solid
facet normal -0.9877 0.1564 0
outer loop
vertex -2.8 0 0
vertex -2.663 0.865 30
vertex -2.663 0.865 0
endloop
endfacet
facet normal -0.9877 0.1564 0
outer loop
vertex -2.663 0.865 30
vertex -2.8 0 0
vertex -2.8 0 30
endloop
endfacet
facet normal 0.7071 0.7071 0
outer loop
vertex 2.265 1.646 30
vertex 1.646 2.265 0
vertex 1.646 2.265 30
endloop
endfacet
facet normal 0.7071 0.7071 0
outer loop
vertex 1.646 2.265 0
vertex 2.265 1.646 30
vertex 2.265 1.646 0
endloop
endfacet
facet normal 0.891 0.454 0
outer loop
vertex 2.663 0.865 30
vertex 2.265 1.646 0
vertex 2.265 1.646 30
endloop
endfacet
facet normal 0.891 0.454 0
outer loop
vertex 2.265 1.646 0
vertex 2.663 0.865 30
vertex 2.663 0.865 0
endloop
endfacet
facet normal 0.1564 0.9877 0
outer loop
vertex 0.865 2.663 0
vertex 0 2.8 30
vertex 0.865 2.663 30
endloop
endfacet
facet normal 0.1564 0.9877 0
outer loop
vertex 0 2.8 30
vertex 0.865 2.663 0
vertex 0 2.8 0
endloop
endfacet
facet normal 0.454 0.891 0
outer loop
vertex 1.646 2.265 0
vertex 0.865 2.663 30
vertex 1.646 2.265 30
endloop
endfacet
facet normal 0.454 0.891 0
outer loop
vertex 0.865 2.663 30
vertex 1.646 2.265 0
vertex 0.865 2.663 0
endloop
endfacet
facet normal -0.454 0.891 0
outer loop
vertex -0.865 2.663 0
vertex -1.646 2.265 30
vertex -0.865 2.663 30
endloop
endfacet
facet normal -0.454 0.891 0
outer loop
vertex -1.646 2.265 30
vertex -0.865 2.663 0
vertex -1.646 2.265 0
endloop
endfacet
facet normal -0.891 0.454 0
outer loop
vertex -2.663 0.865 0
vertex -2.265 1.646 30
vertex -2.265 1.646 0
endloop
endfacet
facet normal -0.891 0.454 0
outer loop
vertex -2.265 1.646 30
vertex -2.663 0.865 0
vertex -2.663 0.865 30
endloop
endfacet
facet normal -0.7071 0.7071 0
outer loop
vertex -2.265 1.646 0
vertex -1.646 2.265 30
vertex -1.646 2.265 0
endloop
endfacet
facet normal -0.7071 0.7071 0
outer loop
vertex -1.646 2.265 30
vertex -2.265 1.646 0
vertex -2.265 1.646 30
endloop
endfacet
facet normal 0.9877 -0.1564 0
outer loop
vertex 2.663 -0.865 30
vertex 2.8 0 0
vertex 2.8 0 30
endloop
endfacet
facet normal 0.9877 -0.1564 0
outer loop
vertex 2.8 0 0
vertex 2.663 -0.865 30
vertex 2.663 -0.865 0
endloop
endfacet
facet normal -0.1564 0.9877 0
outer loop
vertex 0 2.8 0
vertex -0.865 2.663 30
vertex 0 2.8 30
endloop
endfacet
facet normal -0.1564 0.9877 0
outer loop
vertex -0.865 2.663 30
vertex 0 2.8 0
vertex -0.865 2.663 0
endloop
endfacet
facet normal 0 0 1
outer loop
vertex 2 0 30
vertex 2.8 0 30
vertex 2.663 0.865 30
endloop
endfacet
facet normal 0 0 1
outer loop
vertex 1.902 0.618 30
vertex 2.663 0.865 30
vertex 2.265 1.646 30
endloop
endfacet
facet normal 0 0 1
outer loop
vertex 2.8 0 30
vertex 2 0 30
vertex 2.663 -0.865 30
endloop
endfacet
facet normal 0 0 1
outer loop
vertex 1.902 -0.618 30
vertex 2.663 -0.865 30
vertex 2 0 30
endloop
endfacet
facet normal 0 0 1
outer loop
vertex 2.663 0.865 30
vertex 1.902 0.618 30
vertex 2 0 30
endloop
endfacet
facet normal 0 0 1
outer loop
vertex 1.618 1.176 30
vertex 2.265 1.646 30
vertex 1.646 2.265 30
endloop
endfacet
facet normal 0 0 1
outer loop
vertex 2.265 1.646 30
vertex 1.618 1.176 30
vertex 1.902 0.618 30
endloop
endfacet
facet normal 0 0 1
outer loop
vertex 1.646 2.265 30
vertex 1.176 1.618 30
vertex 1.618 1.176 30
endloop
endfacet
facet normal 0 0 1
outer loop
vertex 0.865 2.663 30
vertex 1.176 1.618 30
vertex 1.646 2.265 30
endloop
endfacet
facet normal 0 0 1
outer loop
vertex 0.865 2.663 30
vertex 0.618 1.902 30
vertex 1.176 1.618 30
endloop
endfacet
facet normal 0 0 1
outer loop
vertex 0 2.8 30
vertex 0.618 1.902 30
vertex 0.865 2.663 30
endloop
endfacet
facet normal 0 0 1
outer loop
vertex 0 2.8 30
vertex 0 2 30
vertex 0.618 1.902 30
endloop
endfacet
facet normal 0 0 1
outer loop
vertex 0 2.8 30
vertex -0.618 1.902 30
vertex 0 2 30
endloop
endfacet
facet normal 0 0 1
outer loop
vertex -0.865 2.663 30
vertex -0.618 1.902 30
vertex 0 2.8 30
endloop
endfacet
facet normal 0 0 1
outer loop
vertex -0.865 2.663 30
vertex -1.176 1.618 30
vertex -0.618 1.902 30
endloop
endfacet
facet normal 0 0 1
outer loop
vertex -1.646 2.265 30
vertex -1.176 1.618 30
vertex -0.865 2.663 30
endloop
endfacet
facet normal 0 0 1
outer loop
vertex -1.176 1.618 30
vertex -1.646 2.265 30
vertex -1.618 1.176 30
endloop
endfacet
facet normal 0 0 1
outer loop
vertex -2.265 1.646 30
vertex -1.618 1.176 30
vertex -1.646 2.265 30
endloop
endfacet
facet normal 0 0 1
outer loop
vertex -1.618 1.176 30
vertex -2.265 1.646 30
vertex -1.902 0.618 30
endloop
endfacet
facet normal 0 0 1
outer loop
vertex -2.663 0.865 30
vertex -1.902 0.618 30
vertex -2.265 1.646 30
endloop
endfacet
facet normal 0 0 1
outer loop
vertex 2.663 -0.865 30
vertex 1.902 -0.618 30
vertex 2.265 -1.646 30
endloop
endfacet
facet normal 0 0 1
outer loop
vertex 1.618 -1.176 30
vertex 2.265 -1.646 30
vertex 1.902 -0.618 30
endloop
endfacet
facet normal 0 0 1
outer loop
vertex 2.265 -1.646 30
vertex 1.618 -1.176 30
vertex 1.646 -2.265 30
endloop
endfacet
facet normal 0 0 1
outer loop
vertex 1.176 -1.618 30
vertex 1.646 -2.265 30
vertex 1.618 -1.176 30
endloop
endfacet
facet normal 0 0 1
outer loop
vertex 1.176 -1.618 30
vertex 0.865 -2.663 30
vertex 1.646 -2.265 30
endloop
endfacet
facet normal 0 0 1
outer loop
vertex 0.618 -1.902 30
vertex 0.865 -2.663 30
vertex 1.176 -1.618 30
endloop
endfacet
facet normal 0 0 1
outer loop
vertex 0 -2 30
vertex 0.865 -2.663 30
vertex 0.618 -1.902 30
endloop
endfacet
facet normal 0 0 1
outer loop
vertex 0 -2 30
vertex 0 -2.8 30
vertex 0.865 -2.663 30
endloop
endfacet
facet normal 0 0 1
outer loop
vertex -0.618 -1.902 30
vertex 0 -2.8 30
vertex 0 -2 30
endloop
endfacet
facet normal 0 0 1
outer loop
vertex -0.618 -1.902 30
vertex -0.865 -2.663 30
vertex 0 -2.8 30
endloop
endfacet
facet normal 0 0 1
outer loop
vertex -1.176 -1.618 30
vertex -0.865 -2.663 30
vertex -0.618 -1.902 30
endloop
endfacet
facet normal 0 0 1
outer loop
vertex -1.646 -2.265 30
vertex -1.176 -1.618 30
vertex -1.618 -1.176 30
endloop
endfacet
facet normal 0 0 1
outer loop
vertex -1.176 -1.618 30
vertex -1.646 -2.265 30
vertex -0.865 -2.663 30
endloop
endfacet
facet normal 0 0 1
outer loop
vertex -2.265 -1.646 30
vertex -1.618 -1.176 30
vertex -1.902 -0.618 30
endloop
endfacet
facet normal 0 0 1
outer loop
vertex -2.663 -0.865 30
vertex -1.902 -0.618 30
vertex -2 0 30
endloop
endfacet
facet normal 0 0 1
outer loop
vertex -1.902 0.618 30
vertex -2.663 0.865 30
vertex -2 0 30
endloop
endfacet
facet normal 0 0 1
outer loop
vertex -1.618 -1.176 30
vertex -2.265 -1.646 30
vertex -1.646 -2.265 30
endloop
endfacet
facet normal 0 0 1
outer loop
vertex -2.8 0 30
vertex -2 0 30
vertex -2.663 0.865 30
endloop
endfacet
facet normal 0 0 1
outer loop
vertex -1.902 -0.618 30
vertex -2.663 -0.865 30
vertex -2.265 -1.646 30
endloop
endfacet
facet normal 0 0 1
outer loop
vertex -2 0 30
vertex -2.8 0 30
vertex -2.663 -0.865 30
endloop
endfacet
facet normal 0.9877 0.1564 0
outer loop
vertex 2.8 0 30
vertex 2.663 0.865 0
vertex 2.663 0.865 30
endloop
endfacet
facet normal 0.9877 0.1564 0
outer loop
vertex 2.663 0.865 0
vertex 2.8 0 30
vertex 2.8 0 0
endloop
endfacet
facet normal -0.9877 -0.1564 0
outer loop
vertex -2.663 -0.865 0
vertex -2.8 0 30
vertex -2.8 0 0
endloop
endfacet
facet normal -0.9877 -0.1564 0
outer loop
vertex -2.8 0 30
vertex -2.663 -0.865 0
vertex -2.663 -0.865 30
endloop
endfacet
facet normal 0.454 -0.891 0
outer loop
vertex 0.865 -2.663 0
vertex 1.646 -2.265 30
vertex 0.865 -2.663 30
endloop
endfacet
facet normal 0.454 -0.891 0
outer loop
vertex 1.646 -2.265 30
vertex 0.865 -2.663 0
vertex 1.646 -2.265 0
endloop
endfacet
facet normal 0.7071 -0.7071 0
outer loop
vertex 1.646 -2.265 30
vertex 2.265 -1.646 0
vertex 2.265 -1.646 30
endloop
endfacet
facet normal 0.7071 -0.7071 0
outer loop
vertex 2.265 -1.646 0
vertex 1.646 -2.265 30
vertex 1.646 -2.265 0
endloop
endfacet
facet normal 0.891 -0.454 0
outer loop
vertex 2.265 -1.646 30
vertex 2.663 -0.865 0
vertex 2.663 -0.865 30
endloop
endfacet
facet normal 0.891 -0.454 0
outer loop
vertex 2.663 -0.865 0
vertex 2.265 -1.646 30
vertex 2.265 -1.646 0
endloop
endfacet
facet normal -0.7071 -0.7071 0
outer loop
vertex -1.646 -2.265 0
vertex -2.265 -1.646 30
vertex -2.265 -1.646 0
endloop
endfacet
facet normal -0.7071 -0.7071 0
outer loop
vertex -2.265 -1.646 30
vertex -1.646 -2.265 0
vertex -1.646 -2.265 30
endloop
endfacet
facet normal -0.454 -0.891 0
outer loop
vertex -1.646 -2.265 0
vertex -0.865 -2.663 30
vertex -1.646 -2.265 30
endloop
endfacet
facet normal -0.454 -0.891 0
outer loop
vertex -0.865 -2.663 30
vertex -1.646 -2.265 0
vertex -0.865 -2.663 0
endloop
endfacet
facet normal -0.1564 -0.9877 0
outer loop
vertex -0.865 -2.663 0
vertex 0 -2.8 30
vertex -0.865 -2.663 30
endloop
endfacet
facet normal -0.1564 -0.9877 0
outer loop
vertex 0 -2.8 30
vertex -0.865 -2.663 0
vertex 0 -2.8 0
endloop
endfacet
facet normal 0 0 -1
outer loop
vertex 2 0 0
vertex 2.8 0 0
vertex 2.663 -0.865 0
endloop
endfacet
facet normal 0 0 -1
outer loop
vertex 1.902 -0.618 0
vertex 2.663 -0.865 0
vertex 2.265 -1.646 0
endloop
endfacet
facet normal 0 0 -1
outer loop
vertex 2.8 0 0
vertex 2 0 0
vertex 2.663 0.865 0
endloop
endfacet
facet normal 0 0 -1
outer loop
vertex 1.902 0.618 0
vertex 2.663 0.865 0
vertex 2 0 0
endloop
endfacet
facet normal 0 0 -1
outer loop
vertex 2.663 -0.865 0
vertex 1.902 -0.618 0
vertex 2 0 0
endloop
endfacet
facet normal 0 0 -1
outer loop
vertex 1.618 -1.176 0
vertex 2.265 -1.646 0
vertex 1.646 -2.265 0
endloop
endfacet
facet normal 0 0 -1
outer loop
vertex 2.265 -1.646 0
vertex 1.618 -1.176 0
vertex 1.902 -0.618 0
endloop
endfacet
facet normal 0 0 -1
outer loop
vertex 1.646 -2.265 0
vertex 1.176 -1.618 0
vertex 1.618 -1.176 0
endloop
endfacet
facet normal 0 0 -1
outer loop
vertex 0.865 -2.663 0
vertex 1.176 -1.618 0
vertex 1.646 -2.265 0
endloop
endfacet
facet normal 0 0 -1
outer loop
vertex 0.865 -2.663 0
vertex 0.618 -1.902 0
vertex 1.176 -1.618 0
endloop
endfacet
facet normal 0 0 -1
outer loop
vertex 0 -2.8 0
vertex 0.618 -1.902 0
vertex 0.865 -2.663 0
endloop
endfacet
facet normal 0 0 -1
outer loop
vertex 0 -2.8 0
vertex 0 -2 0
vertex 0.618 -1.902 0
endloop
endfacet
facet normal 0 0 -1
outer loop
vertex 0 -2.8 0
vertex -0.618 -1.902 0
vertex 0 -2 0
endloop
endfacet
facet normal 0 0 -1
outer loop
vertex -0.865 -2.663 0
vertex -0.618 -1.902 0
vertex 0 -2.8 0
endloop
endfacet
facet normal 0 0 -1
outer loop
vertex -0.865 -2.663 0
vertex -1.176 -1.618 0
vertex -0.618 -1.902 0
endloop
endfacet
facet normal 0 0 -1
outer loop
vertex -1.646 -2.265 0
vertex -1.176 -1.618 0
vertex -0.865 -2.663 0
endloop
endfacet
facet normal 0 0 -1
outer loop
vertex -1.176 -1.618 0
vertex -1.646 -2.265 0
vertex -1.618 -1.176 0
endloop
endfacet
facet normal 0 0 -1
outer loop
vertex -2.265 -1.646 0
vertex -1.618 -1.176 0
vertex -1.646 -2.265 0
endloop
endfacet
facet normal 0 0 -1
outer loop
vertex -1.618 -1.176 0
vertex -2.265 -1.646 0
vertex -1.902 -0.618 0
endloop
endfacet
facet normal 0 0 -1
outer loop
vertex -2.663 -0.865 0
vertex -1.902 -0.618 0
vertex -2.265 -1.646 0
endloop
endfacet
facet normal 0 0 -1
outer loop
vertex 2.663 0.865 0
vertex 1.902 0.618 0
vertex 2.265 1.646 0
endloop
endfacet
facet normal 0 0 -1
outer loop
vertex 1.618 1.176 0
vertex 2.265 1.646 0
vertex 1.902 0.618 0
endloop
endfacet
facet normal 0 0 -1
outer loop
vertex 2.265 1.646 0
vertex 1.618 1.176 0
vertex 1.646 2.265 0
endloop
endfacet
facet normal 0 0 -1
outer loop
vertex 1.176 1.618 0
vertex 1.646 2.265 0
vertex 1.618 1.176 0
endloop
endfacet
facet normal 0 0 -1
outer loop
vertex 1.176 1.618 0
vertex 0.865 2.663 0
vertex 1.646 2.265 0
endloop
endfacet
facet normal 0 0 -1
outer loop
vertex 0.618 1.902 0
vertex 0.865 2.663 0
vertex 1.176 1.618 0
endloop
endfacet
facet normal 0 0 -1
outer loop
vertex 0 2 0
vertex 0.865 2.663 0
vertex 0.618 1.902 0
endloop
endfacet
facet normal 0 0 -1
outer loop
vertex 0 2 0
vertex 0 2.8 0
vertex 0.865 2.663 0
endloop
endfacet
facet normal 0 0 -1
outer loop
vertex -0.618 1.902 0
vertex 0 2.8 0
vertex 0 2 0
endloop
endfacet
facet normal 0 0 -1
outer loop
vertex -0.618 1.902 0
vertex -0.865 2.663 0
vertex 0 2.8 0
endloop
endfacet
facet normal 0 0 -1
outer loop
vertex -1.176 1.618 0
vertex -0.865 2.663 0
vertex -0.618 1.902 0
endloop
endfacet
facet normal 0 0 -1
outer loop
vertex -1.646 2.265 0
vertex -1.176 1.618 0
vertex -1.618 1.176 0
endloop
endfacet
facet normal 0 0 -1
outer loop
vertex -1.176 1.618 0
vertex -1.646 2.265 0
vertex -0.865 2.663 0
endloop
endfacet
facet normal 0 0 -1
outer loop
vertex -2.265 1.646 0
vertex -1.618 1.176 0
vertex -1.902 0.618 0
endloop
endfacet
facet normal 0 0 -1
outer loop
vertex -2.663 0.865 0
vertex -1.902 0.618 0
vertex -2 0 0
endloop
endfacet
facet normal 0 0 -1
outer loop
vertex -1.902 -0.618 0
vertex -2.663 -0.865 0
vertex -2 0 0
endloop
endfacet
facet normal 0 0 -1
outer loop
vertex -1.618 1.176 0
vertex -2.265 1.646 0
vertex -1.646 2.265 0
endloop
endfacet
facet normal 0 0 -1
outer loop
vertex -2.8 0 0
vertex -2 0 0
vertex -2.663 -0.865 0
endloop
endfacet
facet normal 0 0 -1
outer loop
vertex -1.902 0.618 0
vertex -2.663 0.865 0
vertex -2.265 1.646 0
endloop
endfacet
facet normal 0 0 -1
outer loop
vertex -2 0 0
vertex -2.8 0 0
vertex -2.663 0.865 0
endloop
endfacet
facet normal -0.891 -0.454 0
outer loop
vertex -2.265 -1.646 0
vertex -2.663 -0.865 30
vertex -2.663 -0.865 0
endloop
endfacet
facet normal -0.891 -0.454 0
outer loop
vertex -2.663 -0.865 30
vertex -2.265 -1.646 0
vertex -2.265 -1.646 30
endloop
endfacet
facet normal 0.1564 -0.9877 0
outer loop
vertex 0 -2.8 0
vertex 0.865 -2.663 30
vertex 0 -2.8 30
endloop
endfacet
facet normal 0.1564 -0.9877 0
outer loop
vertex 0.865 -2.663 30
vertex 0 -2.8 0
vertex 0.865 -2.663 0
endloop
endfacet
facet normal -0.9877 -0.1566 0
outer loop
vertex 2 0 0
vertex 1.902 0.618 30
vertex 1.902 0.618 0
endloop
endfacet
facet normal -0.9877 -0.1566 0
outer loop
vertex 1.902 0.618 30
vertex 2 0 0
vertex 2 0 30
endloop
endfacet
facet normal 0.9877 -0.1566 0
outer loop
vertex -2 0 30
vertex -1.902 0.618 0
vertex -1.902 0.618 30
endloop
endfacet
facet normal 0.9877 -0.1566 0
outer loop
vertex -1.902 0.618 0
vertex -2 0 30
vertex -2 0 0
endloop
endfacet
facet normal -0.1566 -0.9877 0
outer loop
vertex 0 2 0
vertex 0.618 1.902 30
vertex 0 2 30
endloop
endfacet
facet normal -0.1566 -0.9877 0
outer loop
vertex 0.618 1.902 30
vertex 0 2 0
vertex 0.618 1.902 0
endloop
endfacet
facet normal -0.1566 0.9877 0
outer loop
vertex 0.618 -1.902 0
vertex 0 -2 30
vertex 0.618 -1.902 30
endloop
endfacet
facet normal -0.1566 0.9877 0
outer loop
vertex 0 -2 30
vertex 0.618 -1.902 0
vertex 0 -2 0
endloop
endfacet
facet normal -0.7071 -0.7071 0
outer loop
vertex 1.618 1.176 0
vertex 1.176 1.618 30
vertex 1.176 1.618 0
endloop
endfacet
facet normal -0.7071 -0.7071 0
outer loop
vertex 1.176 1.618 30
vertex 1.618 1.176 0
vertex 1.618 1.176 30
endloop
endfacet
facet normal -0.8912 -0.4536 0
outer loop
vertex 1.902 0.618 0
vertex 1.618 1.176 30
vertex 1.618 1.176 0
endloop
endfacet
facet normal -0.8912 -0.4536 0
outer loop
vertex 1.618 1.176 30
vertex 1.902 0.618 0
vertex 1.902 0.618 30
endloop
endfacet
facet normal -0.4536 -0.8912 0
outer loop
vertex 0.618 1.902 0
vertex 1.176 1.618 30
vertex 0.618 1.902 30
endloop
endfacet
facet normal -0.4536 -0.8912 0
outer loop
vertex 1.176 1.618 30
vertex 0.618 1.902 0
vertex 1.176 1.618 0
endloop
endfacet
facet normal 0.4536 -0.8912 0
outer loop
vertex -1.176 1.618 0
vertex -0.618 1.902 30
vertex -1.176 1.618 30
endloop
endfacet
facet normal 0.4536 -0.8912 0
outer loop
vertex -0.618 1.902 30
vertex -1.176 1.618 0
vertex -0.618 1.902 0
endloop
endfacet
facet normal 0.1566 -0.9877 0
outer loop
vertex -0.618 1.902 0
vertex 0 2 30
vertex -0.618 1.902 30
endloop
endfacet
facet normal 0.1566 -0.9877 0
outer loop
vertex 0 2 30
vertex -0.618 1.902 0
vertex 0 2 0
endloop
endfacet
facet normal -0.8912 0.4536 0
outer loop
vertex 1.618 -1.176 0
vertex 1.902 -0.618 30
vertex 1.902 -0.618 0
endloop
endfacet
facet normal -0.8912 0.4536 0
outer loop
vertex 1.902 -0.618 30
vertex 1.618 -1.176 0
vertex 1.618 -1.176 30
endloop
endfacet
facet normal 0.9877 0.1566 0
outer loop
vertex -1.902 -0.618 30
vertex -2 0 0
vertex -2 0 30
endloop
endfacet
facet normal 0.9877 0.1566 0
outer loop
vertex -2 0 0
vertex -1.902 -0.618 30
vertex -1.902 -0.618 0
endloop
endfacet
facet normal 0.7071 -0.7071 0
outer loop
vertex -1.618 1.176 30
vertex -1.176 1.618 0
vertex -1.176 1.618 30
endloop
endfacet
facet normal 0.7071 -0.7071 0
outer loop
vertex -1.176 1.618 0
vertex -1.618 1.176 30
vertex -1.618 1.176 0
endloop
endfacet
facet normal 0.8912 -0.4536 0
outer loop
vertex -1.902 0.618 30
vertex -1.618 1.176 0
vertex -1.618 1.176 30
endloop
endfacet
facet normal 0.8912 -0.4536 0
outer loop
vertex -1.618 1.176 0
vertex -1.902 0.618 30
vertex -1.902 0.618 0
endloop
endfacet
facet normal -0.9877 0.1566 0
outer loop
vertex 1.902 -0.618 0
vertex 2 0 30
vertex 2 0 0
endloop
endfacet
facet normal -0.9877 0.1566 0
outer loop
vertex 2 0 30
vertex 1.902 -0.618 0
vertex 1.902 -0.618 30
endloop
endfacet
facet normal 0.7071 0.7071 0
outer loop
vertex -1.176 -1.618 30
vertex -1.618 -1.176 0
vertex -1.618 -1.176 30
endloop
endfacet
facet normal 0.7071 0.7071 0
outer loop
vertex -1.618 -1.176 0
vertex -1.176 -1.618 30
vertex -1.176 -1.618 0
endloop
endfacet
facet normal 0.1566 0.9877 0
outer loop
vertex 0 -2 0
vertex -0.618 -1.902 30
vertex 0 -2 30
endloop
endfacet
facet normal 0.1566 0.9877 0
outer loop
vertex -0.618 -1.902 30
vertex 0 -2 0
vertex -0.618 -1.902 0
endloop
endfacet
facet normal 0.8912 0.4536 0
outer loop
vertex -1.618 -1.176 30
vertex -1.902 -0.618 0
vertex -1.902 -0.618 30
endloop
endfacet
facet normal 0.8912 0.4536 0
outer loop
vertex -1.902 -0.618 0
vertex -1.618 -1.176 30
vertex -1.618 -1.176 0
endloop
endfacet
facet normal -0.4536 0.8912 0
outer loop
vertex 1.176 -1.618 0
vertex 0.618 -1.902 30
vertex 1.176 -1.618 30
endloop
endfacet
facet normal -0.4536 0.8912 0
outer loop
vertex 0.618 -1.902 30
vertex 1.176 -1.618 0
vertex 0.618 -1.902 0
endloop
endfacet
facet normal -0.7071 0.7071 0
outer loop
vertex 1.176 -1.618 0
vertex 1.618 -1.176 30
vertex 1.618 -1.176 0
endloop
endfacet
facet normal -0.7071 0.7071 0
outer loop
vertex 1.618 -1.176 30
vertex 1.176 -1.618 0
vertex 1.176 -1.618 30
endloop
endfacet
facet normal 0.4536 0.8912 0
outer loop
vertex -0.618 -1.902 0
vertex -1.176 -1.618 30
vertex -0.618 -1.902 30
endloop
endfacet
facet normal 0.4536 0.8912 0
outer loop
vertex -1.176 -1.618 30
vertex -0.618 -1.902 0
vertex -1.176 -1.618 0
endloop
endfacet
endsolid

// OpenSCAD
$fn=20;
difference()
{
    cylinder(r=2.8,h=30);
    cylinder(r=2,h=30);
}
